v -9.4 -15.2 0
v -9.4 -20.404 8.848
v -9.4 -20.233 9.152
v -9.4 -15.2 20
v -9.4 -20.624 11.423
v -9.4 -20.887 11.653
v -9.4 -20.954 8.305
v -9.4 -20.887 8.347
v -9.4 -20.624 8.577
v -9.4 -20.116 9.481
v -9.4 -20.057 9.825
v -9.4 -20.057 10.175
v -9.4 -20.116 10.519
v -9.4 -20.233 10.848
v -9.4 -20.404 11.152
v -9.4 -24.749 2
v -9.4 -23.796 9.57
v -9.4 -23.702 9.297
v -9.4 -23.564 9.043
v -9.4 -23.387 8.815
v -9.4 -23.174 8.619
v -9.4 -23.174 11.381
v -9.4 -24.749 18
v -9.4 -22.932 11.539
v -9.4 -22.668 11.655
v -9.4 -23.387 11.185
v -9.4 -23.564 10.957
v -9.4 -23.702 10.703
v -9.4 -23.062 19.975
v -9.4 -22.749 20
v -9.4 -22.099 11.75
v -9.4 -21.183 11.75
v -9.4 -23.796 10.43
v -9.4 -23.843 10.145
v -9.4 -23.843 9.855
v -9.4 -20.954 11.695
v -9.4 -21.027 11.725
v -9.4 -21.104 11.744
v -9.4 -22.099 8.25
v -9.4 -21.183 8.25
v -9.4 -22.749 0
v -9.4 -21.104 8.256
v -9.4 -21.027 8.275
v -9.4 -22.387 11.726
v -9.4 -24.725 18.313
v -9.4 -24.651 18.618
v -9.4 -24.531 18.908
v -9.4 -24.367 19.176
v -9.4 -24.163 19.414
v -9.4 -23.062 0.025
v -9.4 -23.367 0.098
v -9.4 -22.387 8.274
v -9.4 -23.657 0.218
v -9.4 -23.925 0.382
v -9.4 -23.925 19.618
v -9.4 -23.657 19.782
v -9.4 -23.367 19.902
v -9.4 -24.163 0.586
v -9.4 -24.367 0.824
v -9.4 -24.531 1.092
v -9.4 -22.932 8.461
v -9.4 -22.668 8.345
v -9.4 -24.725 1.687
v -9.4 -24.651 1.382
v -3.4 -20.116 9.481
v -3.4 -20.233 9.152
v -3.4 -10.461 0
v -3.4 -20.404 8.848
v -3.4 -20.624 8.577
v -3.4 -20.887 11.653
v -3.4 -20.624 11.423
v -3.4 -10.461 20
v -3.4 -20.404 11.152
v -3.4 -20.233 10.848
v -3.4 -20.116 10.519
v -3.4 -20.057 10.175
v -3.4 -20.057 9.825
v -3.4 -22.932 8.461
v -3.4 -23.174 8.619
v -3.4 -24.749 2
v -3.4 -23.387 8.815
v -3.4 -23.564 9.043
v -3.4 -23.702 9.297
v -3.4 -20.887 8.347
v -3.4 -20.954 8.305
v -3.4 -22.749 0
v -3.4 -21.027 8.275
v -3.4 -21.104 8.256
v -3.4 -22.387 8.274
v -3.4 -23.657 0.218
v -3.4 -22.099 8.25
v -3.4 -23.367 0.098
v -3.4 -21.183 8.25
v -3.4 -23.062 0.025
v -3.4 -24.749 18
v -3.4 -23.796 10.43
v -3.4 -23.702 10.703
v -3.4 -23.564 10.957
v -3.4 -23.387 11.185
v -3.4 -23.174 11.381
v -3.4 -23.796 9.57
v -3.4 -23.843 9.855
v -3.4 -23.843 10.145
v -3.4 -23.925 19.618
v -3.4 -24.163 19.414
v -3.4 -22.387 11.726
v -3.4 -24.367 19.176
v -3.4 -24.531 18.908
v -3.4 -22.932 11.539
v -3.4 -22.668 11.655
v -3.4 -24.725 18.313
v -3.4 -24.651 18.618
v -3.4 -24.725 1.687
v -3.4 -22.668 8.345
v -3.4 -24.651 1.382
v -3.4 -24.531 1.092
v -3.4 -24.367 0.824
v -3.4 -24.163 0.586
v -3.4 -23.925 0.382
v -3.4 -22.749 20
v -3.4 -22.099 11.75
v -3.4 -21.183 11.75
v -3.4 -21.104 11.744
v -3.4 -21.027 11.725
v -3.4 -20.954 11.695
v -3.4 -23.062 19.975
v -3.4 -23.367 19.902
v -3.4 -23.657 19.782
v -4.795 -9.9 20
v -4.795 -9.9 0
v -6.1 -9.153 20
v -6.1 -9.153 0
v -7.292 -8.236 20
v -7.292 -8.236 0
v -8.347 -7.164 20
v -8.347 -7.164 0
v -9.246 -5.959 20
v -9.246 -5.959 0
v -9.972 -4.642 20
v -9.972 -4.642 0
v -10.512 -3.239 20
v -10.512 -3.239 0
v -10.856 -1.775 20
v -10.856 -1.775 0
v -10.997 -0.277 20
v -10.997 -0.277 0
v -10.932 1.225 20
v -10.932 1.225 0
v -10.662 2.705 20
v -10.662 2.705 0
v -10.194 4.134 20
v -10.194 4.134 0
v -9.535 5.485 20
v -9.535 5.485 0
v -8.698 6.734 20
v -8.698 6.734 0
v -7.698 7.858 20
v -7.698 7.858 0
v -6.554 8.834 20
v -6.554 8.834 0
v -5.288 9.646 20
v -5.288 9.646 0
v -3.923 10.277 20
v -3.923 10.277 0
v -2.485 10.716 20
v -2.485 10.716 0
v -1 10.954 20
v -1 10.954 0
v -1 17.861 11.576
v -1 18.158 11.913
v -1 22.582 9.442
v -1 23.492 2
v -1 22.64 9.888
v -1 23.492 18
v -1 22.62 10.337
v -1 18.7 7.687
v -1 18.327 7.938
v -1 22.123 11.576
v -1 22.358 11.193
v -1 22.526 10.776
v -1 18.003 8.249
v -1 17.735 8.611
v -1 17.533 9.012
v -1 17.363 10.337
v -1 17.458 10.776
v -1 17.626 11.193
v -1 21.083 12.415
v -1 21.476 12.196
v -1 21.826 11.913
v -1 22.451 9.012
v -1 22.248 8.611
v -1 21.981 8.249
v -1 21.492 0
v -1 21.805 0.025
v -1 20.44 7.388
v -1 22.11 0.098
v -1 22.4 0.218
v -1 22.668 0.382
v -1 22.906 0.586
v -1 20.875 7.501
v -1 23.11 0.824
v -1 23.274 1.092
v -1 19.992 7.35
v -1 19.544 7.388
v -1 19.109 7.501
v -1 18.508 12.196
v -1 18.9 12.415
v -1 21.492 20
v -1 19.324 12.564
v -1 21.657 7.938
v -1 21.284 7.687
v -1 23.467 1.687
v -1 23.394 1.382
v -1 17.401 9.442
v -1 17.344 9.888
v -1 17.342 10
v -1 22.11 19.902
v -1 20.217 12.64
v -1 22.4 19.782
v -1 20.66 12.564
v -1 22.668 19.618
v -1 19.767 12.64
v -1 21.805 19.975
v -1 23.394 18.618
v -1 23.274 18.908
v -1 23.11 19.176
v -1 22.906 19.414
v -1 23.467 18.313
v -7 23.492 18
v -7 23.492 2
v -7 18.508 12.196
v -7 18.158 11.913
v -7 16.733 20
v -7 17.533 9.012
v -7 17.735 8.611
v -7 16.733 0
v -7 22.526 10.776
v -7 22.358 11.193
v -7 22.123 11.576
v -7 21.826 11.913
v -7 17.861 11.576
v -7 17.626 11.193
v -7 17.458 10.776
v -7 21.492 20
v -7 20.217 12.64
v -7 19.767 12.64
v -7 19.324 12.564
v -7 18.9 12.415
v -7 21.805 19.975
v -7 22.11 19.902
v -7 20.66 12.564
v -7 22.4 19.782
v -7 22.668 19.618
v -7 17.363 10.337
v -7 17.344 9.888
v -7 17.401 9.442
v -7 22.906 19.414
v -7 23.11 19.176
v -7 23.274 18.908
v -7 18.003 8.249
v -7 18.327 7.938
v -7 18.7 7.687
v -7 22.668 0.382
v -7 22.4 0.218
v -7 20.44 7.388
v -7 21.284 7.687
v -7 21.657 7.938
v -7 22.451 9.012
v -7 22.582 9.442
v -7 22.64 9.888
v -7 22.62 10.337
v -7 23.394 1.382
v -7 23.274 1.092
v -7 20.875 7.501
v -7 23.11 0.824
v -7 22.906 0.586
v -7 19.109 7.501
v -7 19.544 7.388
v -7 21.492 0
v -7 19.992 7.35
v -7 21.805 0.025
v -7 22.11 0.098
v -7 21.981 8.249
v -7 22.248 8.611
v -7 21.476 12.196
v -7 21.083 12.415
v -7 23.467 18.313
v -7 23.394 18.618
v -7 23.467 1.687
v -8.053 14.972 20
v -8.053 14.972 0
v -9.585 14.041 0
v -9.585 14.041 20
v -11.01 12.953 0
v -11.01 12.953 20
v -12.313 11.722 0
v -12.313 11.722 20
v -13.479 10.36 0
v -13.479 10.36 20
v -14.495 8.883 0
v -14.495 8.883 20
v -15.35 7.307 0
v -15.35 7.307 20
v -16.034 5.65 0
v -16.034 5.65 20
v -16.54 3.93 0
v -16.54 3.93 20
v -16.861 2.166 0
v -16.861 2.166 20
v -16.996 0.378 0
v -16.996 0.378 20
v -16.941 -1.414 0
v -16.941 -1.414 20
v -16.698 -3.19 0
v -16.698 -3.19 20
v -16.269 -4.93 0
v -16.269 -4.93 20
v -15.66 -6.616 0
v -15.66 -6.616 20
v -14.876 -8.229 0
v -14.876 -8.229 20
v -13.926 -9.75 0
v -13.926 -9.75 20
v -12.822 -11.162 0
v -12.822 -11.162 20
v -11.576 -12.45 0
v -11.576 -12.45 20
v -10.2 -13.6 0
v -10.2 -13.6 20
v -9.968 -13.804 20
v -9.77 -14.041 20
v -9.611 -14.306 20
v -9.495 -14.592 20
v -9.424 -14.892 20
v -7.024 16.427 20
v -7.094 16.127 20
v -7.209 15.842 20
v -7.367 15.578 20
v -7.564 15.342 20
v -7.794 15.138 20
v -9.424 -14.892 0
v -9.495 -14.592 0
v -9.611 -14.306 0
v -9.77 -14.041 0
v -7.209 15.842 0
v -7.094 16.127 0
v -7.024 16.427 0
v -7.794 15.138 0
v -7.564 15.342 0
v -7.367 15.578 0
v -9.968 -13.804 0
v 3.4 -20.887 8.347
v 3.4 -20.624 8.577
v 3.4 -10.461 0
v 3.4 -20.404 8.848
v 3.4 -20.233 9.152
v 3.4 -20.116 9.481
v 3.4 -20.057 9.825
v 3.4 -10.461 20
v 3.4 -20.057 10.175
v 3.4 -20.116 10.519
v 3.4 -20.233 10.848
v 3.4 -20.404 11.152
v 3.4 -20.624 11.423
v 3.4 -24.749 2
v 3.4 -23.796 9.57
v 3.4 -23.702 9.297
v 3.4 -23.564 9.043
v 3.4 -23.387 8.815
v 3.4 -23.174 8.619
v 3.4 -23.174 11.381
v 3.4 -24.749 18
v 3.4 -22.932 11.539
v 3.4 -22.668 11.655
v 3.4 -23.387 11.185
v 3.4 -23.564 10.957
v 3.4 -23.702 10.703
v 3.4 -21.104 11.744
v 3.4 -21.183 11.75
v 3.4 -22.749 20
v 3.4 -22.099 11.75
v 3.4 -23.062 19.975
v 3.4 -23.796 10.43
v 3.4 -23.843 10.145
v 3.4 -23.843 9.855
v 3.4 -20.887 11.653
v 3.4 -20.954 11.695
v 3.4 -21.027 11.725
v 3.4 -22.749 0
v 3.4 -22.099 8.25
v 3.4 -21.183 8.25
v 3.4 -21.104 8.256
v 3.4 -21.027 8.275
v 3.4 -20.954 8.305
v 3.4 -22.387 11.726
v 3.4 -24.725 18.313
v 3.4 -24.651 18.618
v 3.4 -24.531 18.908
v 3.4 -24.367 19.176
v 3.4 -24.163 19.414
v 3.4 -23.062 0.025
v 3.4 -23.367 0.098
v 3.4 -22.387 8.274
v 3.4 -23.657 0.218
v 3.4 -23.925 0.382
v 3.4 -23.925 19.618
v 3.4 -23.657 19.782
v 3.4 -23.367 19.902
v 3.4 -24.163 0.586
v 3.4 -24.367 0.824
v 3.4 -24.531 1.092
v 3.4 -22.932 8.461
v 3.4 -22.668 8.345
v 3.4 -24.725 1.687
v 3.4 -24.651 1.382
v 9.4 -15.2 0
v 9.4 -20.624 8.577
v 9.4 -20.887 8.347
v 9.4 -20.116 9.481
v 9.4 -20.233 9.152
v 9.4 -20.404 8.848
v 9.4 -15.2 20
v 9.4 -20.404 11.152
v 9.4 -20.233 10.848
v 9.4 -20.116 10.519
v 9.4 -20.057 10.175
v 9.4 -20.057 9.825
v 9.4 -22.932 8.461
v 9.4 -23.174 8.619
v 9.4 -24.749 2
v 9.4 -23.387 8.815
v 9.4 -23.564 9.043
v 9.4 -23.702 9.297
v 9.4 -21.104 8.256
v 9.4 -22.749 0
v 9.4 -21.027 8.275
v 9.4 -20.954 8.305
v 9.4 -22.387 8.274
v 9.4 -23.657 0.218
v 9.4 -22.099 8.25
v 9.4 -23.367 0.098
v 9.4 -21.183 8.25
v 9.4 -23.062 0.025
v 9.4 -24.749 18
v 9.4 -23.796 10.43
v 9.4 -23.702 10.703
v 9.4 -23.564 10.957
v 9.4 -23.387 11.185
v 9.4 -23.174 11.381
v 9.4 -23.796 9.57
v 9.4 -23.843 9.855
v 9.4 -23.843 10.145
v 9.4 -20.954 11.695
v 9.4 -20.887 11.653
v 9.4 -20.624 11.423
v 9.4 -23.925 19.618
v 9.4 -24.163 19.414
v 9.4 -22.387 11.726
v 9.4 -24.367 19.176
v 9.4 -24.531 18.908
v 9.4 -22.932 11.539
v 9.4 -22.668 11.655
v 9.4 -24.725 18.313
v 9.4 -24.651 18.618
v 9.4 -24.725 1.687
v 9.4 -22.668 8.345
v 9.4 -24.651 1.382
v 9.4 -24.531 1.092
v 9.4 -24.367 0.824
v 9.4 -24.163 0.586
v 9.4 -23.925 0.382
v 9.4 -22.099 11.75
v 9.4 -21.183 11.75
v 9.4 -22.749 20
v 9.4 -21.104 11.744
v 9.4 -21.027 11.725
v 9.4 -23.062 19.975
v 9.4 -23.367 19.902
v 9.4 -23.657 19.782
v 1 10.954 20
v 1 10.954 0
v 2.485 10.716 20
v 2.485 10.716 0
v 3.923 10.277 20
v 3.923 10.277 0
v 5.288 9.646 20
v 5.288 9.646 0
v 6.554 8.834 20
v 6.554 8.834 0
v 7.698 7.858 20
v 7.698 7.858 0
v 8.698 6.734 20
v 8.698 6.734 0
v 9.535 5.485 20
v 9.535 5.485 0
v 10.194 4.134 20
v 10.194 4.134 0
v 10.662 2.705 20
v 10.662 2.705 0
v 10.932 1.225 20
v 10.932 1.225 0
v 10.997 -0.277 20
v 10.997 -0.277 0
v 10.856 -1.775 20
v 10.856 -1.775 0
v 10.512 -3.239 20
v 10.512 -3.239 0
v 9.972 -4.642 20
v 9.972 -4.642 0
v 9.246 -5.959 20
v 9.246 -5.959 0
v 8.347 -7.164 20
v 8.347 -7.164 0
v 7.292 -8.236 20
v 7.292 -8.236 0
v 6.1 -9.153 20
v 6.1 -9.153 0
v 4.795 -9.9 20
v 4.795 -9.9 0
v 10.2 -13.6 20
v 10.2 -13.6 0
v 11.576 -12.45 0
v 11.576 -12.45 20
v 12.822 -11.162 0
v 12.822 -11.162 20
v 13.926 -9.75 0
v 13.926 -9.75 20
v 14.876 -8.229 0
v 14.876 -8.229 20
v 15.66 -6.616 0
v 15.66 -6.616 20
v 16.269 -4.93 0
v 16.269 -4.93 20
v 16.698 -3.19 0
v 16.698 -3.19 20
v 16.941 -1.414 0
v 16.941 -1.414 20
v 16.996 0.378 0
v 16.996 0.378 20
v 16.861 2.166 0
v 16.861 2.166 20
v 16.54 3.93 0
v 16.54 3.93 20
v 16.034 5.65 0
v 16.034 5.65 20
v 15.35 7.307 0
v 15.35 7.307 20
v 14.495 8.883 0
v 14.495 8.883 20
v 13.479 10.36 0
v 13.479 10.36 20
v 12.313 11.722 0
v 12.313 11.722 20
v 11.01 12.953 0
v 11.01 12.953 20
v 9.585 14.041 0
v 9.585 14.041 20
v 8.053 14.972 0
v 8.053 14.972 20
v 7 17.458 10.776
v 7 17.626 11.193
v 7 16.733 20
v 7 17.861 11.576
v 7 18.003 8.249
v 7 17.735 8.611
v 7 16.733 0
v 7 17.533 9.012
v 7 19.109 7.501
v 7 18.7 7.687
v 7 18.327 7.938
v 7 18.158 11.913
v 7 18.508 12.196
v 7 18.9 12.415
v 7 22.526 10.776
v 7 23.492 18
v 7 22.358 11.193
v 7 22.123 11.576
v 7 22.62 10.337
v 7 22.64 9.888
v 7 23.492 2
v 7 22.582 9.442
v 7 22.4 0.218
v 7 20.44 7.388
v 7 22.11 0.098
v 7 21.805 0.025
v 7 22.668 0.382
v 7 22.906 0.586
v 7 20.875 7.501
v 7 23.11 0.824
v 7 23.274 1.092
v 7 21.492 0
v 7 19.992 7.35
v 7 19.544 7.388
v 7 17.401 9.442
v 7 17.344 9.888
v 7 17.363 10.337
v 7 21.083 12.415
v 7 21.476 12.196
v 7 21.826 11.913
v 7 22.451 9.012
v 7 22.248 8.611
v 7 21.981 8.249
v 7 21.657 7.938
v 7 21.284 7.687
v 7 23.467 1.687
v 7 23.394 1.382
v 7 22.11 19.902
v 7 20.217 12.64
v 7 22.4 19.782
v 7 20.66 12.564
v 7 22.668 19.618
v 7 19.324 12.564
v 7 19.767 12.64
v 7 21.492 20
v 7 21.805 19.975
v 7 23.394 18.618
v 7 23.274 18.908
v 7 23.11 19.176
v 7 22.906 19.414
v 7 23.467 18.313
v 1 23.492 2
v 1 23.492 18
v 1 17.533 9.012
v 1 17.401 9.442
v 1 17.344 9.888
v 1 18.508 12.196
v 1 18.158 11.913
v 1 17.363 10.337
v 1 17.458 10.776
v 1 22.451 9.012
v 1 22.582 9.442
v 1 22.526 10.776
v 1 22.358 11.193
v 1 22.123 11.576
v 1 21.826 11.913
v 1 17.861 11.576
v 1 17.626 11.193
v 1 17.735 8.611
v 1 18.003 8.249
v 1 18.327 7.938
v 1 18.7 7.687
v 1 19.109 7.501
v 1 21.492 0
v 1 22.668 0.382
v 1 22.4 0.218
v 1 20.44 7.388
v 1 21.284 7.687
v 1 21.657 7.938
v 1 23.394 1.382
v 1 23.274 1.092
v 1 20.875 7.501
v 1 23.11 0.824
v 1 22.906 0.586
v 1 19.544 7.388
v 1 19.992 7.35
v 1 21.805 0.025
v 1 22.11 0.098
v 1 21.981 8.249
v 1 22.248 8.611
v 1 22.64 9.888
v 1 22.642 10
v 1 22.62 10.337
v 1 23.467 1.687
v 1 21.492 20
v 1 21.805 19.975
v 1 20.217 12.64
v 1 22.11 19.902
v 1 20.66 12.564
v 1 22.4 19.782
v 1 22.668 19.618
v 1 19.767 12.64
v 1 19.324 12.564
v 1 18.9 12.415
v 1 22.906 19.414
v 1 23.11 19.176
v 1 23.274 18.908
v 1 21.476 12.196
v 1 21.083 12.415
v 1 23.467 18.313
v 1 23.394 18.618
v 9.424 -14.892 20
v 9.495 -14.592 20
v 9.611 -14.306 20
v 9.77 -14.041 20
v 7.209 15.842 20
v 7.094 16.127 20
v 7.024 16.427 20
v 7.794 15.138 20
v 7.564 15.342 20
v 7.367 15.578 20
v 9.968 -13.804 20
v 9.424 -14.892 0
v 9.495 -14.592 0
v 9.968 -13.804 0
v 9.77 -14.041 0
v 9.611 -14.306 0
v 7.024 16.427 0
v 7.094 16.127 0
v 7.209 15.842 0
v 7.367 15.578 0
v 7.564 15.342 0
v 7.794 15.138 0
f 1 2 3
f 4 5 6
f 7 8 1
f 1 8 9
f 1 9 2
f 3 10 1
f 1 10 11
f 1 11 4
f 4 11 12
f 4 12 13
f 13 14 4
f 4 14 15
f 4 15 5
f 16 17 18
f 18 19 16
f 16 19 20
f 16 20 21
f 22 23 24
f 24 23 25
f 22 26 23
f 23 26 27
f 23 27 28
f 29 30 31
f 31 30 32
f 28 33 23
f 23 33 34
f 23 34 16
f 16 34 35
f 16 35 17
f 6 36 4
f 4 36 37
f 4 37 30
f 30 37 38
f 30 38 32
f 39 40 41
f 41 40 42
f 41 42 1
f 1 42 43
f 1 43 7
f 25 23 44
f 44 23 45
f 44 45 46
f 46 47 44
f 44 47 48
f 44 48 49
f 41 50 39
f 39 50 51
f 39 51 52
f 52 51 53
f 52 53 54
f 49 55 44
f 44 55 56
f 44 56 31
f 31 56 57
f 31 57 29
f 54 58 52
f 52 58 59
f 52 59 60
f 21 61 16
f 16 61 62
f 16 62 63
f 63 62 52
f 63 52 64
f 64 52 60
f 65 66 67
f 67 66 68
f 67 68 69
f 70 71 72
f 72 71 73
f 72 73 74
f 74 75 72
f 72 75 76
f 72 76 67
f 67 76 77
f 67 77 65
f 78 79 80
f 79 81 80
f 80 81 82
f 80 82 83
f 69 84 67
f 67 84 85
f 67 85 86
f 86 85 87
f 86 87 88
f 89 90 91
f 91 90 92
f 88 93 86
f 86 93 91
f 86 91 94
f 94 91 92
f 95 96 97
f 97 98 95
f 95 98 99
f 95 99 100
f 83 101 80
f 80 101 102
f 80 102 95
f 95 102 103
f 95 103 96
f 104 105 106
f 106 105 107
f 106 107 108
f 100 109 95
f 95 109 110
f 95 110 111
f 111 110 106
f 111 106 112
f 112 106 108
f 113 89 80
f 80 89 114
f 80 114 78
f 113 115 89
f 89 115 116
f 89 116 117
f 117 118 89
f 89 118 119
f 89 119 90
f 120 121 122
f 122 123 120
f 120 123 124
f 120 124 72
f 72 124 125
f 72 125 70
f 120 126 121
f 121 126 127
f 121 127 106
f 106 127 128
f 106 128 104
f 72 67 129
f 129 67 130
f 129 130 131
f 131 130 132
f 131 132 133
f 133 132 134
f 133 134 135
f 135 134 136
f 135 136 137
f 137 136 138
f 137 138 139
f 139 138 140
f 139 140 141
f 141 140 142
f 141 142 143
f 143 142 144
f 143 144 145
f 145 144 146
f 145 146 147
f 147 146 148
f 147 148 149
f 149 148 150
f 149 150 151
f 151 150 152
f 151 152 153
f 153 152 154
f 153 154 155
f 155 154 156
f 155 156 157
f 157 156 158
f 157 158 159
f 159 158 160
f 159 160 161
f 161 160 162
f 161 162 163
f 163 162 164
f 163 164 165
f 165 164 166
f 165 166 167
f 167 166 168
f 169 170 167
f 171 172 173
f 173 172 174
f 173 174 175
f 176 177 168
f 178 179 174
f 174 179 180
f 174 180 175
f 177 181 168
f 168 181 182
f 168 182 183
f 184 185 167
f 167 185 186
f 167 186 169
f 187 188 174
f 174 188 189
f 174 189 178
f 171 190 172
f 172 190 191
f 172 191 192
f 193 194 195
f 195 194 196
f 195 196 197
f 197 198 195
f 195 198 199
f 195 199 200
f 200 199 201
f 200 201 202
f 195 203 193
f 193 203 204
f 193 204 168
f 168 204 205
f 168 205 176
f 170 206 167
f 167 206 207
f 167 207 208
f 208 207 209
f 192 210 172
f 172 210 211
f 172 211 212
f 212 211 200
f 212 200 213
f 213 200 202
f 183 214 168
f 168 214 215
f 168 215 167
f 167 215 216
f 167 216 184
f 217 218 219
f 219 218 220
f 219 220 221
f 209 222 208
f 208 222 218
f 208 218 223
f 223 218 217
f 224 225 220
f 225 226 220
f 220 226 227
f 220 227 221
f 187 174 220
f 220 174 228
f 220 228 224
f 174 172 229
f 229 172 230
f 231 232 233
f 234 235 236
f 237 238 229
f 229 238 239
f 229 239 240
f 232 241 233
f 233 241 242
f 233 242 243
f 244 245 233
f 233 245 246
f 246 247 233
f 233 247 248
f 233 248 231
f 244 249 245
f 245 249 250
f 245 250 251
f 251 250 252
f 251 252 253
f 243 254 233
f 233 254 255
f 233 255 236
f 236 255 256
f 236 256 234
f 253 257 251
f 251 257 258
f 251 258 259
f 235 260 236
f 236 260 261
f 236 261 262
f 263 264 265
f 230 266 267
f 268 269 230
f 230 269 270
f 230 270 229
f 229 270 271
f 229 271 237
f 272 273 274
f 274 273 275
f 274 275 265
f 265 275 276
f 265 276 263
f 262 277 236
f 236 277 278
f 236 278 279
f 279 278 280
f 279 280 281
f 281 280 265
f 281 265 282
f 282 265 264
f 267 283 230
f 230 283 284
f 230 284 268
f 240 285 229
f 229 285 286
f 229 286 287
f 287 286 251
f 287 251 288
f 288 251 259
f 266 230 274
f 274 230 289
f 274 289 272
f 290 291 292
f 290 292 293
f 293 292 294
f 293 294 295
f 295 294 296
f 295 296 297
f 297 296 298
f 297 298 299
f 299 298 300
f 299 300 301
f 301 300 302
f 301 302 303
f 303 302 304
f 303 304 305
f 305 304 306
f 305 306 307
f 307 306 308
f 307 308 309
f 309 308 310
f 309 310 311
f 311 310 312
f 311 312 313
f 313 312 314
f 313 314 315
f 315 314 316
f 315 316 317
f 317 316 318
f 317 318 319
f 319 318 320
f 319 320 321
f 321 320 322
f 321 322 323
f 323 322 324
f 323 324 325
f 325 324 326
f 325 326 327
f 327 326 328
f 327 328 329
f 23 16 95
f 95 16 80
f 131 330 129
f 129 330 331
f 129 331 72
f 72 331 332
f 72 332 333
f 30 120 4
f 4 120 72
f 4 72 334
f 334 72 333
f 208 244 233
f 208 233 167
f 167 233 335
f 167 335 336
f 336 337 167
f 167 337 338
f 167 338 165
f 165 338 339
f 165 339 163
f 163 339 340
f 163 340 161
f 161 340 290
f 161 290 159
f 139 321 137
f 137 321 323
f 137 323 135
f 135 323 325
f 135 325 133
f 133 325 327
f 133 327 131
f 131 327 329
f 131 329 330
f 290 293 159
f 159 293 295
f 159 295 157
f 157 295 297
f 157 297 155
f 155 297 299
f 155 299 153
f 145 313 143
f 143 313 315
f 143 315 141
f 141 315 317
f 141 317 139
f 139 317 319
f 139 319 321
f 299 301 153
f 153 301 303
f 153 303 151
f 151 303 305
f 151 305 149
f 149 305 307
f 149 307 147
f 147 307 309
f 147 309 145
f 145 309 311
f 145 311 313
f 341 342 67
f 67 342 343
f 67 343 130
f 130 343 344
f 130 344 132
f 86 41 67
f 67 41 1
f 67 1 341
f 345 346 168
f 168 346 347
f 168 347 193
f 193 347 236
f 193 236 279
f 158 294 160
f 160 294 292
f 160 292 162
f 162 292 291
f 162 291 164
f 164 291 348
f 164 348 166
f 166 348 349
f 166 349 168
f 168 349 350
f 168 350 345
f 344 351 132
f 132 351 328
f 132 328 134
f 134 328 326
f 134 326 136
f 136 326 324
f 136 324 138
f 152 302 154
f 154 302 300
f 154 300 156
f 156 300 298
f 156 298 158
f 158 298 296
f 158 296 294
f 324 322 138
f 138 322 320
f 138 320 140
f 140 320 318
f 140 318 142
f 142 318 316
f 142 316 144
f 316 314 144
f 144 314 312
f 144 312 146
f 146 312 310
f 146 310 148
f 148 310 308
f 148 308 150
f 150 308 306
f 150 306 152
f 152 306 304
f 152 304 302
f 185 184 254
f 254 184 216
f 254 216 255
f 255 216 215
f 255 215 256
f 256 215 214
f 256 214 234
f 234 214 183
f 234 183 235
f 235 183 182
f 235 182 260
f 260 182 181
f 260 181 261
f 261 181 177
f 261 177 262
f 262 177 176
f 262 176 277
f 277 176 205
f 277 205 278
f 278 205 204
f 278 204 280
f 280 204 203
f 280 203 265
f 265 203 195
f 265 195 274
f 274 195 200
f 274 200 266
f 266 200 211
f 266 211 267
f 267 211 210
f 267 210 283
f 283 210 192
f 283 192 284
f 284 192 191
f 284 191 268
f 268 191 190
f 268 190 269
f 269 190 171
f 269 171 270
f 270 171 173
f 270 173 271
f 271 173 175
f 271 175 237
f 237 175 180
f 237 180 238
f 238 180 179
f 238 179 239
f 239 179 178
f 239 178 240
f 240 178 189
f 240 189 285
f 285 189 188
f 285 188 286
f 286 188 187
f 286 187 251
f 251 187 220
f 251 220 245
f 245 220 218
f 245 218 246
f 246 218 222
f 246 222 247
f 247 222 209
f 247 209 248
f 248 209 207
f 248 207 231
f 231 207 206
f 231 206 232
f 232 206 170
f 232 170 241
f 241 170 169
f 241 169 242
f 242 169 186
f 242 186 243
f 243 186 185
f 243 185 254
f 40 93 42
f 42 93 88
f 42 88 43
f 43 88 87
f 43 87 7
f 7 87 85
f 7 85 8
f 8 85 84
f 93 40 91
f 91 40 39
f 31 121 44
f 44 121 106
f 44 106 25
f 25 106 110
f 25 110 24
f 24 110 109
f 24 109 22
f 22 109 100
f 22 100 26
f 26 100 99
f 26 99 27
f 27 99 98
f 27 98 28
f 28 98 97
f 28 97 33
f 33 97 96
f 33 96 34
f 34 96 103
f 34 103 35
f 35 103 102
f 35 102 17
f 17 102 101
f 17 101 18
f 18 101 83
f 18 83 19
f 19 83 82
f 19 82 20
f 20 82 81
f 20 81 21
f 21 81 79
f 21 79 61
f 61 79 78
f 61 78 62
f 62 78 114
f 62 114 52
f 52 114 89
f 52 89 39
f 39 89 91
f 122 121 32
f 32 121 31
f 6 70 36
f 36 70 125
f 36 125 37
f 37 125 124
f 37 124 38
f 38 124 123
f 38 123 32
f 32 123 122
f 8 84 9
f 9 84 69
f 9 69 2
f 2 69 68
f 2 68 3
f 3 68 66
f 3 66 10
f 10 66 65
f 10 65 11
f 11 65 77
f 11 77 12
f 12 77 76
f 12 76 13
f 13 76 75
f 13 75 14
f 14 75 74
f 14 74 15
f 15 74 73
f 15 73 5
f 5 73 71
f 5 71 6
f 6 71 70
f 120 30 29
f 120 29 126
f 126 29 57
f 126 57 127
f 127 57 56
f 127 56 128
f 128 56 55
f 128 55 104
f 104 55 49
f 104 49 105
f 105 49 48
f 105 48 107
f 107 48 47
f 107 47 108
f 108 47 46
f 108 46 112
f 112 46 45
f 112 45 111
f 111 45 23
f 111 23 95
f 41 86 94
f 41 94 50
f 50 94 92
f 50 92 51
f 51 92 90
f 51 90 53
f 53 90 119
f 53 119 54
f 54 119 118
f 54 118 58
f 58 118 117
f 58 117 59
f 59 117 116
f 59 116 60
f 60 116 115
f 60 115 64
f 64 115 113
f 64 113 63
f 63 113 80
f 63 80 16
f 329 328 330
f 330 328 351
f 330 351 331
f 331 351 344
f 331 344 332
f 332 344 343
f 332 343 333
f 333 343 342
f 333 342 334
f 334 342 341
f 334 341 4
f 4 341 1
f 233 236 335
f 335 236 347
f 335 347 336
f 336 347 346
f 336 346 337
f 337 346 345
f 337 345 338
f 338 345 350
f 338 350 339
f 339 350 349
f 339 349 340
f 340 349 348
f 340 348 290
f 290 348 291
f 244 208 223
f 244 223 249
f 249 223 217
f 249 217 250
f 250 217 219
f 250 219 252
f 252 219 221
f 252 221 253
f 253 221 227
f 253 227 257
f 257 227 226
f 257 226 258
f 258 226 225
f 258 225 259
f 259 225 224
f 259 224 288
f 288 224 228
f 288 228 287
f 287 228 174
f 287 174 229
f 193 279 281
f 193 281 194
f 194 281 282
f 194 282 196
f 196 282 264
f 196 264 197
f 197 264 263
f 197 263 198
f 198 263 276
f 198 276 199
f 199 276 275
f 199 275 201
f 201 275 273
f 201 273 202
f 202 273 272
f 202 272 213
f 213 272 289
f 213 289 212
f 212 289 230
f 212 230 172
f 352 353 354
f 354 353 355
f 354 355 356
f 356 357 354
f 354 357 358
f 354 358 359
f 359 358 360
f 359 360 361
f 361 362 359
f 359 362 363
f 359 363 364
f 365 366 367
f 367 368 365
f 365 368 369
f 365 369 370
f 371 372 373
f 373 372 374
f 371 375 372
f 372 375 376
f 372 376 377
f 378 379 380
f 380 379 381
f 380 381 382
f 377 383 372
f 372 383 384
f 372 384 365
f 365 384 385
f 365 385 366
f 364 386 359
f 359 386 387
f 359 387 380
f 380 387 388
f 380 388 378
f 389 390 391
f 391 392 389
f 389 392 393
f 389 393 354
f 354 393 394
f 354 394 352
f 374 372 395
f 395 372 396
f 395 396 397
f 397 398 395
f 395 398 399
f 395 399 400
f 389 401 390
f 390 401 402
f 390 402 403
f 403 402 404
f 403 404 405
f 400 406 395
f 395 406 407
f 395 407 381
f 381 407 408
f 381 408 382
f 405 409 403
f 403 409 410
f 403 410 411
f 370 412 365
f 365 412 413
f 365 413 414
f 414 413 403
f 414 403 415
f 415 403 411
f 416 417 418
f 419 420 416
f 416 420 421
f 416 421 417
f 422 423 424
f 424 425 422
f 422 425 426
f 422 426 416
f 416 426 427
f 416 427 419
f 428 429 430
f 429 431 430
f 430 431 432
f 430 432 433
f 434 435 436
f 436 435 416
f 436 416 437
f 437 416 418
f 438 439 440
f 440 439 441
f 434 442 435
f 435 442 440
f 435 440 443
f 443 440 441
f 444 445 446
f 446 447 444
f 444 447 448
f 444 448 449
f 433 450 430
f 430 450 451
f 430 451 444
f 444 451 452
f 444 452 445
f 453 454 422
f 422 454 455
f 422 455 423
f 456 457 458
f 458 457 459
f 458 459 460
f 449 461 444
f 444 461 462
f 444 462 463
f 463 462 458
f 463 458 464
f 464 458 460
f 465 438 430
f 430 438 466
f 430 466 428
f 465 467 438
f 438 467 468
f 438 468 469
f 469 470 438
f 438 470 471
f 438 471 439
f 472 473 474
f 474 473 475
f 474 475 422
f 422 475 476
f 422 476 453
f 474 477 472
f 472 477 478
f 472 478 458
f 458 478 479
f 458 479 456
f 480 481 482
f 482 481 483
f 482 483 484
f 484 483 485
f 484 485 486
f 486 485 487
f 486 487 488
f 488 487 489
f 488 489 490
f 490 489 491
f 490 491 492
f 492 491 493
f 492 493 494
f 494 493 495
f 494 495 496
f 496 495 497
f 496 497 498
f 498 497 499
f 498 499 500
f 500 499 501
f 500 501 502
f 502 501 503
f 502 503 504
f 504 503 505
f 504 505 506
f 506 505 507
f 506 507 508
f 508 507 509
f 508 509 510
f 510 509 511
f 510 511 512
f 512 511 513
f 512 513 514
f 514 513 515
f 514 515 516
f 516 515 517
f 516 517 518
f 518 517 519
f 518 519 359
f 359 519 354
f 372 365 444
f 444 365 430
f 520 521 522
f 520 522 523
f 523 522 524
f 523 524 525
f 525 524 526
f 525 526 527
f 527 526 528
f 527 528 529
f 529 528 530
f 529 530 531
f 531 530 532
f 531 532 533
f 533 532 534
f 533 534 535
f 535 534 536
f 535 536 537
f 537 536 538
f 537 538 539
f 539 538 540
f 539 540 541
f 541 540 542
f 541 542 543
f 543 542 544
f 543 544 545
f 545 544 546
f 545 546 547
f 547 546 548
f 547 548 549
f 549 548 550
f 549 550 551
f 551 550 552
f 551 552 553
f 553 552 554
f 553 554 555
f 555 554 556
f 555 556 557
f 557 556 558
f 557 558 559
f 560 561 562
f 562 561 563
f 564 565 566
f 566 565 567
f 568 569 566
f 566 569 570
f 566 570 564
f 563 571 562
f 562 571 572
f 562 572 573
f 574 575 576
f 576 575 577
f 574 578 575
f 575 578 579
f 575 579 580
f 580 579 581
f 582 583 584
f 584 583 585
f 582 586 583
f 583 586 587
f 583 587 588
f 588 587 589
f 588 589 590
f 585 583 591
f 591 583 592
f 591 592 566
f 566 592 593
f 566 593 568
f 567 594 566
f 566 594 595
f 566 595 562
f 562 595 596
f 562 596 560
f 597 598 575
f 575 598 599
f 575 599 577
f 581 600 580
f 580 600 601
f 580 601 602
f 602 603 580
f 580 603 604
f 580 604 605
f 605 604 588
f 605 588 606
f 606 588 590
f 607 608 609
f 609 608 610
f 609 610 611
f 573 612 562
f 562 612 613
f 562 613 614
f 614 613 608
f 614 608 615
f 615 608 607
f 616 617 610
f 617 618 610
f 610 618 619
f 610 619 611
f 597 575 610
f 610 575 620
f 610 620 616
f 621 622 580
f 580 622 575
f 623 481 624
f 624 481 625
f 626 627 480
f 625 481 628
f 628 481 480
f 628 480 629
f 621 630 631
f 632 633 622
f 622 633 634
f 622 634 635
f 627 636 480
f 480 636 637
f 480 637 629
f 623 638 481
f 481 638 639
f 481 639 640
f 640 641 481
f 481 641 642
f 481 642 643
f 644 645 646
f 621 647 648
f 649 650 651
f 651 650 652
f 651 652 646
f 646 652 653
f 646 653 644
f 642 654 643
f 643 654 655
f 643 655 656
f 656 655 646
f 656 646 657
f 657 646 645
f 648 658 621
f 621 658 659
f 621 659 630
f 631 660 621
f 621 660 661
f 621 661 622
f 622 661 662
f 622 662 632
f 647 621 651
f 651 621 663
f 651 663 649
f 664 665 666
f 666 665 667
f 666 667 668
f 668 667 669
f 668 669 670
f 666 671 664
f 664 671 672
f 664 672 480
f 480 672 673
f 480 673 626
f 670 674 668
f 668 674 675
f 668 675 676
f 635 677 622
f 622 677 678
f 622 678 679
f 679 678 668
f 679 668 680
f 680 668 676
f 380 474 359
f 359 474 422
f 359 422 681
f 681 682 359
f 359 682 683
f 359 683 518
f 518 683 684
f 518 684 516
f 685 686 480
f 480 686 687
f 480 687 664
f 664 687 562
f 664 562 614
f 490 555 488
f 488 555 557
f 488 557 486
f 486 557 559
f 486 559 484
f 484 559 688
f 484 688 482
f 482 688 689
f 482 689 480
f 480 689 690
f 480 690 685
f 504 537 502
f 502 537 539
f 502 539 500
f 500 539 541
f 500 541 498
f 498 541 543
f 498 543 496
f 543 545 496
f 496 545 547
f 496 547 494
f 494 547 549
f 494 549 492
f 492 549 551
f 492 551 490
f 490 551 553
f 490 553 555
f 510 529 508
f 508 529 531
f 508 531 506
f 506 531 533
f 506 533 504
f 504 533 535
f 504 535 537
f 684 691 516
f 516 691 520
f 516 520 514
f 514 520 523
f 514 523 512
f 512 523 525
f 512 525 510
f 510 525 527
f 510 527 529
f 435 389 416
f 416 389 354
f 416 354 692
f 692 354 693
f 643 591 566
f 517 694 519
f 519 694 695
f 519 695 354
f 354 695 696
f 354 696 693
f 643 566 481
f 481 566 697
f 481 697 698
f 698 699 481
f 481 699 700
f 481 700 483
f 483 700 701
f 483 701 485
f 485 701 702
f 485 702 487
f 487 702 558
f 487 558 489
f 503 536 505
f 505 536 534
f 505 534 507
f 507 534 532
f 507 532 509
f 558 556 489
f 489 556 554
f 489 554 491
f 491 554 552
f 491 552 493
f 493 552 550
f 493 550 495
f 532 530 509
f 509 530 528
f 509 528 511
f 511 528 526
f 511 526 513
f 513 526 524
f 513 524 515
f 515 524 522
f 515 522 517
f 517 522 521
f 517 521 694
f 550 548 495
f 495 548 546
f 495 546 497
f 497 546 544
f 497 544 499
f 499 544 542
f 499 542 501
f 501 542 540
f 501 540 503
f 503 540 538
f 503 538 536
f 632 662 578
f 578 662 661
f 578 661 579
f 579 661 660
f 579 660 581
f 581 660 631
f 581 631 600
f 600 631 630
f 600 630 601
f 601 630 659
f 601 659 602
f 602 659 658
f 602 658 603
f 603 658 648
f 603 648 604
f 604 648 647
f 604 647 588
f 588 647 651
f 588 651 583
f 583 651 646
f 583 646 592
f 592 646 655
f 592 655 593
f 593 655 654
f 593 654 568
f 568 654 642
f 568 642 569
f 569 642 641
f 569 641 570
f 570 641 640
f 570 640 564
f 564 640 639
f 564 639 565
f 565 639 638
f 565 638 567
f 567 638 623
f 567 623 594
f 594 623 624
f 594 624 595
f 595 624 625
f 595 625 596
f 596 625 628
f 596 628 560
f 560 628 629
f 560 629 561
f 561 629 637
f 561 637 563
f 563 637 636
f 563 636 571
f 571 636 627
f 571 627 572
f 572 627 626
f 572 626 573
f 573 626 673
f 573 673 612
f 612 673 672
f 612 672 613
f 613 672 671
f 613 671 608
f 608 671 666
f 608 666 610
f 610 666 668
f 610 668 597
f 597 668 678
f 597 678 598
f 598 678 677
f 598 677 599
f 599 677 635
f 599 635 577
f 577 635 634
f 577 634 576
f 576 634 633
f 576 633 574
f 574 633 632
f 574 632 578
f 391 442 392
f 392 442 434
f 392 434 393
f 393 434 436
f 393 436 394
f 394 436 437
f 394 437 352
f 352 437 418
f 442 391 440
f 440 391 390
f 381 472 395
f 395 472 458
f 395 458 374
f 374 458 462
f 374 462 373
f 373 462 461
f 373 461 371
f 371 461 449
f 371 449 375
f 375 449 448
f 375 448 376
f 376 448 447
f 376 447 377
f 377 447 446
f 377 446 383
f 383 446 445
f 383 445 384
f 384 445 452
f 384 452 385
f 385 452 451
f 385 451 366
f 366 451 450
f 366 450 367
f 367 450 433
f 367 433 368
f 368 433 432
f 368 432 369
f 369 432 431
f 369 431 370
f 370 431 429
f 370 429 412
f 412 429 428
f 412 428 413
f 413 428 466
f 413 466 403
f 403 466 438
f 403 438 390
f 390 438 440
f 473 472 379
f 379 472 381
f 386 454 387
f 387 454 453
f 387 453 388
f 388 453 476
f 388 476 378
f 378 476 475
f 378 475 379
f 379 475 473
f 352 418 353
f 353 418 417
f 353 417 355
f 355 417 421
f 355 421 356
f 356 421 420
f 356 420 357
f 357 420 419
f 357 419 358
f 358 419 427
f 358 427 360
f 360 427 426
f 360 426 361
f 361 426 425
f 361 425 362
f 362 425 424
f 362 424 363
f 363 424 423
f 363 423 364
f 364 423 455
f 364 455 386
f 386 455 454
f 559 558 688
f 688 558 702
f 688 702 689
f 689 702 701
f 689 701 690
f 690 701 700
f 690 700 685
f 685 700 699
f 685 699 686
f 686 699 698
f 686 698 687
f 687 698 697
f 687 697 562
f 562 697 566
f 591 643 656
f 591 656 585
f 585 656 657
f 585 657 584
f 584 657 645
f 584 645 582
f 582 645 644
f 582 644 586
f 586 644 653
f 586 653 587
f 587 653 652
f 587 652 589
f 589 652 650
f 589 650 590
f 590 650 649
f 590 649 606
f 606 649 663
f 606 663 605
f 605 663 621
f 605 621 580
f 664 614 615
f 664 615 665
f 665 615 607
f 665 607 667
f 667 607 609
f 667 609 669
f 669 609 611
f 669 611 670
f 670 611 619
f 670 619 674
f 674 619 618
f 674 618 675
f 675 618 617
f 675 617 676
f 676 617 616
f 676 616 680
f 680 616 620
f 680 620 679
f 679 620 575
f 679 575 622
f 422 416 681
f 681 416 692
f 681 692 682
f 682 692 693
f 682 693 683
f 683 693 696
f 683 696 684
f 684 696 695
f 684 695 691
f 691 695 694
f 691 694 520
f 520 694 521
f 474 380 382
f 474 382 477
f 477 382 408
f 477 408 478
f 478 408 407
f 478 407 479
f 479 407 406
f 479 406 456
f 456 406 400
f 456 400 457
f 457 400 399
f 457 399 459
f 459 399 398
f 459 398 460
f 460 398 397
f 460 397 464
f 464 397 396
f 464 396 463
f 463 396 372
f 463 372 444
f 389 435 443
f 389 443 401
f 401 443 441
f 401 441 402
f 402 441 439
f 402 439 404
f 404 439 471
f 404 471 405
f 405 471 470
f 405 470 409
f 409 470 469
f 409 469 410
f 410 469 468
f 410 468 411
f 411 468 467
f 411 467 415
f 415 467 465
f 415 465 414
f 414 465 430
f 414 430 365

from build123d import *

# Parameters (mm, degrees)
BOSS_EXTRUDE1_DEPTH   = 20
BOSS_EXTRUDE1_2_DEPTH = 20
SKETCH2_R             = 2.65
CUT_EXTRUDE1_DEPTH    = 14
CUT_EXTRUDE3_DEPTH    = 19
FILLET2_R             = 2
FILLET3_R             = 2


with BuildPart() as part:
    # Sketch1 → Boss-Extrude1 (new body)
    with BuildSketch(Plane.XY):
        with BuildLine():
            Line((-1, 23.491933385), (-1, 10.95445115))
            ThreePointArc((-1, 10.95445115), (-10.931569634, 1.225065445), (-3.4, -10.461357464))
            Line((-3.4, -10.461357464), (-3.4, -24.749285698))
            Line((-3.4, -24.749285698), (-9.4, -24.749285698))
            Line((-9.4, -24.749285698), (-9.4, -14.164744968))
            ThreePointArc((-9.4, -14.164744968), (-16.944605122, 1.371261198), (-7, 15.491933385))
            Line((-7, 15.491933385), (-7, 23.491933385))
            Line((-7, 23.491933385), (-1, 23.491933385))
        make_face()
    extrude(amount=BOSS_EXTRUDE1_DEPTH)


with BuildPart() as body_2:
    # Sketch1 → Boss-Extrude1 2 (new body)
    with BuildSketch(Plane.XY):
        with BuildLine():
            Line((3.4, -10.461357464), (3.4, -24.749285698))
            Line((3.4, -24.749285698), (9.4, -24.749285698))
            Line((9.4, -24.749285698), (9.4, -14.164744968))
            ThreePointArc((9.4, -14.164744968), (16.944605122, 1.371261198), (7, 15.491933385))
            Line((7, 15.491933385), (7, 23.491933385))
            Line((7, 23.491933385), (1, 23.491933385))
            Line((1, 23.491933385), (1, 10.95445115))
            ThreePointArc((1, 10.95445115), (10.931569634, 1.225065445), (3.4, -10.461357464))
        make_face()
    extrude(amount=BOSS_EXTRUDE1_2_DEPTH)


with BuildPart() as cut_extrude1_tool:
    # Sketch2 → Cut-Extrude1 (new body)
    with BuildSketch(Plane(origin=(7, 0, 0), x_dir=(0, 0, -1), z_dir=(1, 0, 0))):
        with Locations((-10, 19.991933385)):
            Circle(SKETCH2_R)
    extrude(amount=-CUT_EXTRUDE1_DEPTH)


with BuildPart() as part_1:
    add(part.part)

    # Cut-Extrude1: cut by cut_extrude1_tool
    add(cut_extrude1_tool.part, mode=Mode.SUBTRACT)


with BuildPart() as body_2_1:
    add(body_2.part)

    # Cut-Extrude1: cut by cut_extrude1_tool
    add(cut_extrude1_tool.part, mode=Mode.SUBTRACT)


with BuildPart() as cut_extrude3_tool:
    # Sketch3 → Cut-Extrude3 (new body)
    with BuildSketch(Plane(origin=(9.4, 0, 0), x_dir=(0, 0, -1), z_dir=(1, 0, 0))):
        with BuildLine():
            Line((-11.75, -22.099285698), (-11.75, -21.182770559))
            ThreePointArc((-11.75, -21.182770559), (-11.725190963, -21.027227805), (-11.653225806, -20.887120514))
            ThreePointArc((-11.653225806, -20.887120514), (-10, -20.049285698), (-8.346774194, -20.887120514))
            ThreePointArc((-8.346774194, -20.887120514), (-8.274809037, -21.027227805), (-8.25, -21.182770559))
            Line((-8.25, -21.182770559), (-8.25, -22.099285698))
            ThreePointArc((-8.25, -22.099285698), (-10, -23.849285698), (-11.75, -22.099285698))
        make_face()
    extrude(amount=-CUT_EXTRUDE3_DEPTH)


with BuildPart() as part_2:
    add(part_1.part)

    # Cut-Extrude3: cut by cut_extrude3_tool
    add(cut_extrude3_tool.part, mode=Mode.SUBTRACT)

    # Fillet3
    fillet3_edges = [part_2.edges().sort_by_distance(p)[0] for p in [
        (-4, 23.491933385, 0),
        (-4, 23.491933385, 20),
        (-9.4, -14.164744968, 10),
        (-7, 15.491933385, 10),
        (-6.4, -24.749285698, 20),
        (-6.4, -24.749285698, 0),
    ]]
    fillet(fillet3_edges, radius=FILLET3_R)


with BuildPart() as body_2_2:
    add(body_2_1.part)

    # Cut-Extrude3: cut by cut_extrude3_tool
    add(cut_extrude3_tool.part, mode=Mode.SUBTRACT)

    # Fillet2
    fillet2_edges = [body_2_2.edges().sort_by_distance(p)[0] for p in [
        (6.4, -24.749285698, 0),
        (6.4, -24.749285698, 20),
        (7, 15.491933385, 10),
        (9.4, -14.164744968, 10),
        (4, 23.491933385, 20),
        (4, 23.491933385, 0),
    ]]
    fillet(fillet2_edges, radius=FILLET2_R)


solid = Compound([part_2.part, body_2_2.part])
